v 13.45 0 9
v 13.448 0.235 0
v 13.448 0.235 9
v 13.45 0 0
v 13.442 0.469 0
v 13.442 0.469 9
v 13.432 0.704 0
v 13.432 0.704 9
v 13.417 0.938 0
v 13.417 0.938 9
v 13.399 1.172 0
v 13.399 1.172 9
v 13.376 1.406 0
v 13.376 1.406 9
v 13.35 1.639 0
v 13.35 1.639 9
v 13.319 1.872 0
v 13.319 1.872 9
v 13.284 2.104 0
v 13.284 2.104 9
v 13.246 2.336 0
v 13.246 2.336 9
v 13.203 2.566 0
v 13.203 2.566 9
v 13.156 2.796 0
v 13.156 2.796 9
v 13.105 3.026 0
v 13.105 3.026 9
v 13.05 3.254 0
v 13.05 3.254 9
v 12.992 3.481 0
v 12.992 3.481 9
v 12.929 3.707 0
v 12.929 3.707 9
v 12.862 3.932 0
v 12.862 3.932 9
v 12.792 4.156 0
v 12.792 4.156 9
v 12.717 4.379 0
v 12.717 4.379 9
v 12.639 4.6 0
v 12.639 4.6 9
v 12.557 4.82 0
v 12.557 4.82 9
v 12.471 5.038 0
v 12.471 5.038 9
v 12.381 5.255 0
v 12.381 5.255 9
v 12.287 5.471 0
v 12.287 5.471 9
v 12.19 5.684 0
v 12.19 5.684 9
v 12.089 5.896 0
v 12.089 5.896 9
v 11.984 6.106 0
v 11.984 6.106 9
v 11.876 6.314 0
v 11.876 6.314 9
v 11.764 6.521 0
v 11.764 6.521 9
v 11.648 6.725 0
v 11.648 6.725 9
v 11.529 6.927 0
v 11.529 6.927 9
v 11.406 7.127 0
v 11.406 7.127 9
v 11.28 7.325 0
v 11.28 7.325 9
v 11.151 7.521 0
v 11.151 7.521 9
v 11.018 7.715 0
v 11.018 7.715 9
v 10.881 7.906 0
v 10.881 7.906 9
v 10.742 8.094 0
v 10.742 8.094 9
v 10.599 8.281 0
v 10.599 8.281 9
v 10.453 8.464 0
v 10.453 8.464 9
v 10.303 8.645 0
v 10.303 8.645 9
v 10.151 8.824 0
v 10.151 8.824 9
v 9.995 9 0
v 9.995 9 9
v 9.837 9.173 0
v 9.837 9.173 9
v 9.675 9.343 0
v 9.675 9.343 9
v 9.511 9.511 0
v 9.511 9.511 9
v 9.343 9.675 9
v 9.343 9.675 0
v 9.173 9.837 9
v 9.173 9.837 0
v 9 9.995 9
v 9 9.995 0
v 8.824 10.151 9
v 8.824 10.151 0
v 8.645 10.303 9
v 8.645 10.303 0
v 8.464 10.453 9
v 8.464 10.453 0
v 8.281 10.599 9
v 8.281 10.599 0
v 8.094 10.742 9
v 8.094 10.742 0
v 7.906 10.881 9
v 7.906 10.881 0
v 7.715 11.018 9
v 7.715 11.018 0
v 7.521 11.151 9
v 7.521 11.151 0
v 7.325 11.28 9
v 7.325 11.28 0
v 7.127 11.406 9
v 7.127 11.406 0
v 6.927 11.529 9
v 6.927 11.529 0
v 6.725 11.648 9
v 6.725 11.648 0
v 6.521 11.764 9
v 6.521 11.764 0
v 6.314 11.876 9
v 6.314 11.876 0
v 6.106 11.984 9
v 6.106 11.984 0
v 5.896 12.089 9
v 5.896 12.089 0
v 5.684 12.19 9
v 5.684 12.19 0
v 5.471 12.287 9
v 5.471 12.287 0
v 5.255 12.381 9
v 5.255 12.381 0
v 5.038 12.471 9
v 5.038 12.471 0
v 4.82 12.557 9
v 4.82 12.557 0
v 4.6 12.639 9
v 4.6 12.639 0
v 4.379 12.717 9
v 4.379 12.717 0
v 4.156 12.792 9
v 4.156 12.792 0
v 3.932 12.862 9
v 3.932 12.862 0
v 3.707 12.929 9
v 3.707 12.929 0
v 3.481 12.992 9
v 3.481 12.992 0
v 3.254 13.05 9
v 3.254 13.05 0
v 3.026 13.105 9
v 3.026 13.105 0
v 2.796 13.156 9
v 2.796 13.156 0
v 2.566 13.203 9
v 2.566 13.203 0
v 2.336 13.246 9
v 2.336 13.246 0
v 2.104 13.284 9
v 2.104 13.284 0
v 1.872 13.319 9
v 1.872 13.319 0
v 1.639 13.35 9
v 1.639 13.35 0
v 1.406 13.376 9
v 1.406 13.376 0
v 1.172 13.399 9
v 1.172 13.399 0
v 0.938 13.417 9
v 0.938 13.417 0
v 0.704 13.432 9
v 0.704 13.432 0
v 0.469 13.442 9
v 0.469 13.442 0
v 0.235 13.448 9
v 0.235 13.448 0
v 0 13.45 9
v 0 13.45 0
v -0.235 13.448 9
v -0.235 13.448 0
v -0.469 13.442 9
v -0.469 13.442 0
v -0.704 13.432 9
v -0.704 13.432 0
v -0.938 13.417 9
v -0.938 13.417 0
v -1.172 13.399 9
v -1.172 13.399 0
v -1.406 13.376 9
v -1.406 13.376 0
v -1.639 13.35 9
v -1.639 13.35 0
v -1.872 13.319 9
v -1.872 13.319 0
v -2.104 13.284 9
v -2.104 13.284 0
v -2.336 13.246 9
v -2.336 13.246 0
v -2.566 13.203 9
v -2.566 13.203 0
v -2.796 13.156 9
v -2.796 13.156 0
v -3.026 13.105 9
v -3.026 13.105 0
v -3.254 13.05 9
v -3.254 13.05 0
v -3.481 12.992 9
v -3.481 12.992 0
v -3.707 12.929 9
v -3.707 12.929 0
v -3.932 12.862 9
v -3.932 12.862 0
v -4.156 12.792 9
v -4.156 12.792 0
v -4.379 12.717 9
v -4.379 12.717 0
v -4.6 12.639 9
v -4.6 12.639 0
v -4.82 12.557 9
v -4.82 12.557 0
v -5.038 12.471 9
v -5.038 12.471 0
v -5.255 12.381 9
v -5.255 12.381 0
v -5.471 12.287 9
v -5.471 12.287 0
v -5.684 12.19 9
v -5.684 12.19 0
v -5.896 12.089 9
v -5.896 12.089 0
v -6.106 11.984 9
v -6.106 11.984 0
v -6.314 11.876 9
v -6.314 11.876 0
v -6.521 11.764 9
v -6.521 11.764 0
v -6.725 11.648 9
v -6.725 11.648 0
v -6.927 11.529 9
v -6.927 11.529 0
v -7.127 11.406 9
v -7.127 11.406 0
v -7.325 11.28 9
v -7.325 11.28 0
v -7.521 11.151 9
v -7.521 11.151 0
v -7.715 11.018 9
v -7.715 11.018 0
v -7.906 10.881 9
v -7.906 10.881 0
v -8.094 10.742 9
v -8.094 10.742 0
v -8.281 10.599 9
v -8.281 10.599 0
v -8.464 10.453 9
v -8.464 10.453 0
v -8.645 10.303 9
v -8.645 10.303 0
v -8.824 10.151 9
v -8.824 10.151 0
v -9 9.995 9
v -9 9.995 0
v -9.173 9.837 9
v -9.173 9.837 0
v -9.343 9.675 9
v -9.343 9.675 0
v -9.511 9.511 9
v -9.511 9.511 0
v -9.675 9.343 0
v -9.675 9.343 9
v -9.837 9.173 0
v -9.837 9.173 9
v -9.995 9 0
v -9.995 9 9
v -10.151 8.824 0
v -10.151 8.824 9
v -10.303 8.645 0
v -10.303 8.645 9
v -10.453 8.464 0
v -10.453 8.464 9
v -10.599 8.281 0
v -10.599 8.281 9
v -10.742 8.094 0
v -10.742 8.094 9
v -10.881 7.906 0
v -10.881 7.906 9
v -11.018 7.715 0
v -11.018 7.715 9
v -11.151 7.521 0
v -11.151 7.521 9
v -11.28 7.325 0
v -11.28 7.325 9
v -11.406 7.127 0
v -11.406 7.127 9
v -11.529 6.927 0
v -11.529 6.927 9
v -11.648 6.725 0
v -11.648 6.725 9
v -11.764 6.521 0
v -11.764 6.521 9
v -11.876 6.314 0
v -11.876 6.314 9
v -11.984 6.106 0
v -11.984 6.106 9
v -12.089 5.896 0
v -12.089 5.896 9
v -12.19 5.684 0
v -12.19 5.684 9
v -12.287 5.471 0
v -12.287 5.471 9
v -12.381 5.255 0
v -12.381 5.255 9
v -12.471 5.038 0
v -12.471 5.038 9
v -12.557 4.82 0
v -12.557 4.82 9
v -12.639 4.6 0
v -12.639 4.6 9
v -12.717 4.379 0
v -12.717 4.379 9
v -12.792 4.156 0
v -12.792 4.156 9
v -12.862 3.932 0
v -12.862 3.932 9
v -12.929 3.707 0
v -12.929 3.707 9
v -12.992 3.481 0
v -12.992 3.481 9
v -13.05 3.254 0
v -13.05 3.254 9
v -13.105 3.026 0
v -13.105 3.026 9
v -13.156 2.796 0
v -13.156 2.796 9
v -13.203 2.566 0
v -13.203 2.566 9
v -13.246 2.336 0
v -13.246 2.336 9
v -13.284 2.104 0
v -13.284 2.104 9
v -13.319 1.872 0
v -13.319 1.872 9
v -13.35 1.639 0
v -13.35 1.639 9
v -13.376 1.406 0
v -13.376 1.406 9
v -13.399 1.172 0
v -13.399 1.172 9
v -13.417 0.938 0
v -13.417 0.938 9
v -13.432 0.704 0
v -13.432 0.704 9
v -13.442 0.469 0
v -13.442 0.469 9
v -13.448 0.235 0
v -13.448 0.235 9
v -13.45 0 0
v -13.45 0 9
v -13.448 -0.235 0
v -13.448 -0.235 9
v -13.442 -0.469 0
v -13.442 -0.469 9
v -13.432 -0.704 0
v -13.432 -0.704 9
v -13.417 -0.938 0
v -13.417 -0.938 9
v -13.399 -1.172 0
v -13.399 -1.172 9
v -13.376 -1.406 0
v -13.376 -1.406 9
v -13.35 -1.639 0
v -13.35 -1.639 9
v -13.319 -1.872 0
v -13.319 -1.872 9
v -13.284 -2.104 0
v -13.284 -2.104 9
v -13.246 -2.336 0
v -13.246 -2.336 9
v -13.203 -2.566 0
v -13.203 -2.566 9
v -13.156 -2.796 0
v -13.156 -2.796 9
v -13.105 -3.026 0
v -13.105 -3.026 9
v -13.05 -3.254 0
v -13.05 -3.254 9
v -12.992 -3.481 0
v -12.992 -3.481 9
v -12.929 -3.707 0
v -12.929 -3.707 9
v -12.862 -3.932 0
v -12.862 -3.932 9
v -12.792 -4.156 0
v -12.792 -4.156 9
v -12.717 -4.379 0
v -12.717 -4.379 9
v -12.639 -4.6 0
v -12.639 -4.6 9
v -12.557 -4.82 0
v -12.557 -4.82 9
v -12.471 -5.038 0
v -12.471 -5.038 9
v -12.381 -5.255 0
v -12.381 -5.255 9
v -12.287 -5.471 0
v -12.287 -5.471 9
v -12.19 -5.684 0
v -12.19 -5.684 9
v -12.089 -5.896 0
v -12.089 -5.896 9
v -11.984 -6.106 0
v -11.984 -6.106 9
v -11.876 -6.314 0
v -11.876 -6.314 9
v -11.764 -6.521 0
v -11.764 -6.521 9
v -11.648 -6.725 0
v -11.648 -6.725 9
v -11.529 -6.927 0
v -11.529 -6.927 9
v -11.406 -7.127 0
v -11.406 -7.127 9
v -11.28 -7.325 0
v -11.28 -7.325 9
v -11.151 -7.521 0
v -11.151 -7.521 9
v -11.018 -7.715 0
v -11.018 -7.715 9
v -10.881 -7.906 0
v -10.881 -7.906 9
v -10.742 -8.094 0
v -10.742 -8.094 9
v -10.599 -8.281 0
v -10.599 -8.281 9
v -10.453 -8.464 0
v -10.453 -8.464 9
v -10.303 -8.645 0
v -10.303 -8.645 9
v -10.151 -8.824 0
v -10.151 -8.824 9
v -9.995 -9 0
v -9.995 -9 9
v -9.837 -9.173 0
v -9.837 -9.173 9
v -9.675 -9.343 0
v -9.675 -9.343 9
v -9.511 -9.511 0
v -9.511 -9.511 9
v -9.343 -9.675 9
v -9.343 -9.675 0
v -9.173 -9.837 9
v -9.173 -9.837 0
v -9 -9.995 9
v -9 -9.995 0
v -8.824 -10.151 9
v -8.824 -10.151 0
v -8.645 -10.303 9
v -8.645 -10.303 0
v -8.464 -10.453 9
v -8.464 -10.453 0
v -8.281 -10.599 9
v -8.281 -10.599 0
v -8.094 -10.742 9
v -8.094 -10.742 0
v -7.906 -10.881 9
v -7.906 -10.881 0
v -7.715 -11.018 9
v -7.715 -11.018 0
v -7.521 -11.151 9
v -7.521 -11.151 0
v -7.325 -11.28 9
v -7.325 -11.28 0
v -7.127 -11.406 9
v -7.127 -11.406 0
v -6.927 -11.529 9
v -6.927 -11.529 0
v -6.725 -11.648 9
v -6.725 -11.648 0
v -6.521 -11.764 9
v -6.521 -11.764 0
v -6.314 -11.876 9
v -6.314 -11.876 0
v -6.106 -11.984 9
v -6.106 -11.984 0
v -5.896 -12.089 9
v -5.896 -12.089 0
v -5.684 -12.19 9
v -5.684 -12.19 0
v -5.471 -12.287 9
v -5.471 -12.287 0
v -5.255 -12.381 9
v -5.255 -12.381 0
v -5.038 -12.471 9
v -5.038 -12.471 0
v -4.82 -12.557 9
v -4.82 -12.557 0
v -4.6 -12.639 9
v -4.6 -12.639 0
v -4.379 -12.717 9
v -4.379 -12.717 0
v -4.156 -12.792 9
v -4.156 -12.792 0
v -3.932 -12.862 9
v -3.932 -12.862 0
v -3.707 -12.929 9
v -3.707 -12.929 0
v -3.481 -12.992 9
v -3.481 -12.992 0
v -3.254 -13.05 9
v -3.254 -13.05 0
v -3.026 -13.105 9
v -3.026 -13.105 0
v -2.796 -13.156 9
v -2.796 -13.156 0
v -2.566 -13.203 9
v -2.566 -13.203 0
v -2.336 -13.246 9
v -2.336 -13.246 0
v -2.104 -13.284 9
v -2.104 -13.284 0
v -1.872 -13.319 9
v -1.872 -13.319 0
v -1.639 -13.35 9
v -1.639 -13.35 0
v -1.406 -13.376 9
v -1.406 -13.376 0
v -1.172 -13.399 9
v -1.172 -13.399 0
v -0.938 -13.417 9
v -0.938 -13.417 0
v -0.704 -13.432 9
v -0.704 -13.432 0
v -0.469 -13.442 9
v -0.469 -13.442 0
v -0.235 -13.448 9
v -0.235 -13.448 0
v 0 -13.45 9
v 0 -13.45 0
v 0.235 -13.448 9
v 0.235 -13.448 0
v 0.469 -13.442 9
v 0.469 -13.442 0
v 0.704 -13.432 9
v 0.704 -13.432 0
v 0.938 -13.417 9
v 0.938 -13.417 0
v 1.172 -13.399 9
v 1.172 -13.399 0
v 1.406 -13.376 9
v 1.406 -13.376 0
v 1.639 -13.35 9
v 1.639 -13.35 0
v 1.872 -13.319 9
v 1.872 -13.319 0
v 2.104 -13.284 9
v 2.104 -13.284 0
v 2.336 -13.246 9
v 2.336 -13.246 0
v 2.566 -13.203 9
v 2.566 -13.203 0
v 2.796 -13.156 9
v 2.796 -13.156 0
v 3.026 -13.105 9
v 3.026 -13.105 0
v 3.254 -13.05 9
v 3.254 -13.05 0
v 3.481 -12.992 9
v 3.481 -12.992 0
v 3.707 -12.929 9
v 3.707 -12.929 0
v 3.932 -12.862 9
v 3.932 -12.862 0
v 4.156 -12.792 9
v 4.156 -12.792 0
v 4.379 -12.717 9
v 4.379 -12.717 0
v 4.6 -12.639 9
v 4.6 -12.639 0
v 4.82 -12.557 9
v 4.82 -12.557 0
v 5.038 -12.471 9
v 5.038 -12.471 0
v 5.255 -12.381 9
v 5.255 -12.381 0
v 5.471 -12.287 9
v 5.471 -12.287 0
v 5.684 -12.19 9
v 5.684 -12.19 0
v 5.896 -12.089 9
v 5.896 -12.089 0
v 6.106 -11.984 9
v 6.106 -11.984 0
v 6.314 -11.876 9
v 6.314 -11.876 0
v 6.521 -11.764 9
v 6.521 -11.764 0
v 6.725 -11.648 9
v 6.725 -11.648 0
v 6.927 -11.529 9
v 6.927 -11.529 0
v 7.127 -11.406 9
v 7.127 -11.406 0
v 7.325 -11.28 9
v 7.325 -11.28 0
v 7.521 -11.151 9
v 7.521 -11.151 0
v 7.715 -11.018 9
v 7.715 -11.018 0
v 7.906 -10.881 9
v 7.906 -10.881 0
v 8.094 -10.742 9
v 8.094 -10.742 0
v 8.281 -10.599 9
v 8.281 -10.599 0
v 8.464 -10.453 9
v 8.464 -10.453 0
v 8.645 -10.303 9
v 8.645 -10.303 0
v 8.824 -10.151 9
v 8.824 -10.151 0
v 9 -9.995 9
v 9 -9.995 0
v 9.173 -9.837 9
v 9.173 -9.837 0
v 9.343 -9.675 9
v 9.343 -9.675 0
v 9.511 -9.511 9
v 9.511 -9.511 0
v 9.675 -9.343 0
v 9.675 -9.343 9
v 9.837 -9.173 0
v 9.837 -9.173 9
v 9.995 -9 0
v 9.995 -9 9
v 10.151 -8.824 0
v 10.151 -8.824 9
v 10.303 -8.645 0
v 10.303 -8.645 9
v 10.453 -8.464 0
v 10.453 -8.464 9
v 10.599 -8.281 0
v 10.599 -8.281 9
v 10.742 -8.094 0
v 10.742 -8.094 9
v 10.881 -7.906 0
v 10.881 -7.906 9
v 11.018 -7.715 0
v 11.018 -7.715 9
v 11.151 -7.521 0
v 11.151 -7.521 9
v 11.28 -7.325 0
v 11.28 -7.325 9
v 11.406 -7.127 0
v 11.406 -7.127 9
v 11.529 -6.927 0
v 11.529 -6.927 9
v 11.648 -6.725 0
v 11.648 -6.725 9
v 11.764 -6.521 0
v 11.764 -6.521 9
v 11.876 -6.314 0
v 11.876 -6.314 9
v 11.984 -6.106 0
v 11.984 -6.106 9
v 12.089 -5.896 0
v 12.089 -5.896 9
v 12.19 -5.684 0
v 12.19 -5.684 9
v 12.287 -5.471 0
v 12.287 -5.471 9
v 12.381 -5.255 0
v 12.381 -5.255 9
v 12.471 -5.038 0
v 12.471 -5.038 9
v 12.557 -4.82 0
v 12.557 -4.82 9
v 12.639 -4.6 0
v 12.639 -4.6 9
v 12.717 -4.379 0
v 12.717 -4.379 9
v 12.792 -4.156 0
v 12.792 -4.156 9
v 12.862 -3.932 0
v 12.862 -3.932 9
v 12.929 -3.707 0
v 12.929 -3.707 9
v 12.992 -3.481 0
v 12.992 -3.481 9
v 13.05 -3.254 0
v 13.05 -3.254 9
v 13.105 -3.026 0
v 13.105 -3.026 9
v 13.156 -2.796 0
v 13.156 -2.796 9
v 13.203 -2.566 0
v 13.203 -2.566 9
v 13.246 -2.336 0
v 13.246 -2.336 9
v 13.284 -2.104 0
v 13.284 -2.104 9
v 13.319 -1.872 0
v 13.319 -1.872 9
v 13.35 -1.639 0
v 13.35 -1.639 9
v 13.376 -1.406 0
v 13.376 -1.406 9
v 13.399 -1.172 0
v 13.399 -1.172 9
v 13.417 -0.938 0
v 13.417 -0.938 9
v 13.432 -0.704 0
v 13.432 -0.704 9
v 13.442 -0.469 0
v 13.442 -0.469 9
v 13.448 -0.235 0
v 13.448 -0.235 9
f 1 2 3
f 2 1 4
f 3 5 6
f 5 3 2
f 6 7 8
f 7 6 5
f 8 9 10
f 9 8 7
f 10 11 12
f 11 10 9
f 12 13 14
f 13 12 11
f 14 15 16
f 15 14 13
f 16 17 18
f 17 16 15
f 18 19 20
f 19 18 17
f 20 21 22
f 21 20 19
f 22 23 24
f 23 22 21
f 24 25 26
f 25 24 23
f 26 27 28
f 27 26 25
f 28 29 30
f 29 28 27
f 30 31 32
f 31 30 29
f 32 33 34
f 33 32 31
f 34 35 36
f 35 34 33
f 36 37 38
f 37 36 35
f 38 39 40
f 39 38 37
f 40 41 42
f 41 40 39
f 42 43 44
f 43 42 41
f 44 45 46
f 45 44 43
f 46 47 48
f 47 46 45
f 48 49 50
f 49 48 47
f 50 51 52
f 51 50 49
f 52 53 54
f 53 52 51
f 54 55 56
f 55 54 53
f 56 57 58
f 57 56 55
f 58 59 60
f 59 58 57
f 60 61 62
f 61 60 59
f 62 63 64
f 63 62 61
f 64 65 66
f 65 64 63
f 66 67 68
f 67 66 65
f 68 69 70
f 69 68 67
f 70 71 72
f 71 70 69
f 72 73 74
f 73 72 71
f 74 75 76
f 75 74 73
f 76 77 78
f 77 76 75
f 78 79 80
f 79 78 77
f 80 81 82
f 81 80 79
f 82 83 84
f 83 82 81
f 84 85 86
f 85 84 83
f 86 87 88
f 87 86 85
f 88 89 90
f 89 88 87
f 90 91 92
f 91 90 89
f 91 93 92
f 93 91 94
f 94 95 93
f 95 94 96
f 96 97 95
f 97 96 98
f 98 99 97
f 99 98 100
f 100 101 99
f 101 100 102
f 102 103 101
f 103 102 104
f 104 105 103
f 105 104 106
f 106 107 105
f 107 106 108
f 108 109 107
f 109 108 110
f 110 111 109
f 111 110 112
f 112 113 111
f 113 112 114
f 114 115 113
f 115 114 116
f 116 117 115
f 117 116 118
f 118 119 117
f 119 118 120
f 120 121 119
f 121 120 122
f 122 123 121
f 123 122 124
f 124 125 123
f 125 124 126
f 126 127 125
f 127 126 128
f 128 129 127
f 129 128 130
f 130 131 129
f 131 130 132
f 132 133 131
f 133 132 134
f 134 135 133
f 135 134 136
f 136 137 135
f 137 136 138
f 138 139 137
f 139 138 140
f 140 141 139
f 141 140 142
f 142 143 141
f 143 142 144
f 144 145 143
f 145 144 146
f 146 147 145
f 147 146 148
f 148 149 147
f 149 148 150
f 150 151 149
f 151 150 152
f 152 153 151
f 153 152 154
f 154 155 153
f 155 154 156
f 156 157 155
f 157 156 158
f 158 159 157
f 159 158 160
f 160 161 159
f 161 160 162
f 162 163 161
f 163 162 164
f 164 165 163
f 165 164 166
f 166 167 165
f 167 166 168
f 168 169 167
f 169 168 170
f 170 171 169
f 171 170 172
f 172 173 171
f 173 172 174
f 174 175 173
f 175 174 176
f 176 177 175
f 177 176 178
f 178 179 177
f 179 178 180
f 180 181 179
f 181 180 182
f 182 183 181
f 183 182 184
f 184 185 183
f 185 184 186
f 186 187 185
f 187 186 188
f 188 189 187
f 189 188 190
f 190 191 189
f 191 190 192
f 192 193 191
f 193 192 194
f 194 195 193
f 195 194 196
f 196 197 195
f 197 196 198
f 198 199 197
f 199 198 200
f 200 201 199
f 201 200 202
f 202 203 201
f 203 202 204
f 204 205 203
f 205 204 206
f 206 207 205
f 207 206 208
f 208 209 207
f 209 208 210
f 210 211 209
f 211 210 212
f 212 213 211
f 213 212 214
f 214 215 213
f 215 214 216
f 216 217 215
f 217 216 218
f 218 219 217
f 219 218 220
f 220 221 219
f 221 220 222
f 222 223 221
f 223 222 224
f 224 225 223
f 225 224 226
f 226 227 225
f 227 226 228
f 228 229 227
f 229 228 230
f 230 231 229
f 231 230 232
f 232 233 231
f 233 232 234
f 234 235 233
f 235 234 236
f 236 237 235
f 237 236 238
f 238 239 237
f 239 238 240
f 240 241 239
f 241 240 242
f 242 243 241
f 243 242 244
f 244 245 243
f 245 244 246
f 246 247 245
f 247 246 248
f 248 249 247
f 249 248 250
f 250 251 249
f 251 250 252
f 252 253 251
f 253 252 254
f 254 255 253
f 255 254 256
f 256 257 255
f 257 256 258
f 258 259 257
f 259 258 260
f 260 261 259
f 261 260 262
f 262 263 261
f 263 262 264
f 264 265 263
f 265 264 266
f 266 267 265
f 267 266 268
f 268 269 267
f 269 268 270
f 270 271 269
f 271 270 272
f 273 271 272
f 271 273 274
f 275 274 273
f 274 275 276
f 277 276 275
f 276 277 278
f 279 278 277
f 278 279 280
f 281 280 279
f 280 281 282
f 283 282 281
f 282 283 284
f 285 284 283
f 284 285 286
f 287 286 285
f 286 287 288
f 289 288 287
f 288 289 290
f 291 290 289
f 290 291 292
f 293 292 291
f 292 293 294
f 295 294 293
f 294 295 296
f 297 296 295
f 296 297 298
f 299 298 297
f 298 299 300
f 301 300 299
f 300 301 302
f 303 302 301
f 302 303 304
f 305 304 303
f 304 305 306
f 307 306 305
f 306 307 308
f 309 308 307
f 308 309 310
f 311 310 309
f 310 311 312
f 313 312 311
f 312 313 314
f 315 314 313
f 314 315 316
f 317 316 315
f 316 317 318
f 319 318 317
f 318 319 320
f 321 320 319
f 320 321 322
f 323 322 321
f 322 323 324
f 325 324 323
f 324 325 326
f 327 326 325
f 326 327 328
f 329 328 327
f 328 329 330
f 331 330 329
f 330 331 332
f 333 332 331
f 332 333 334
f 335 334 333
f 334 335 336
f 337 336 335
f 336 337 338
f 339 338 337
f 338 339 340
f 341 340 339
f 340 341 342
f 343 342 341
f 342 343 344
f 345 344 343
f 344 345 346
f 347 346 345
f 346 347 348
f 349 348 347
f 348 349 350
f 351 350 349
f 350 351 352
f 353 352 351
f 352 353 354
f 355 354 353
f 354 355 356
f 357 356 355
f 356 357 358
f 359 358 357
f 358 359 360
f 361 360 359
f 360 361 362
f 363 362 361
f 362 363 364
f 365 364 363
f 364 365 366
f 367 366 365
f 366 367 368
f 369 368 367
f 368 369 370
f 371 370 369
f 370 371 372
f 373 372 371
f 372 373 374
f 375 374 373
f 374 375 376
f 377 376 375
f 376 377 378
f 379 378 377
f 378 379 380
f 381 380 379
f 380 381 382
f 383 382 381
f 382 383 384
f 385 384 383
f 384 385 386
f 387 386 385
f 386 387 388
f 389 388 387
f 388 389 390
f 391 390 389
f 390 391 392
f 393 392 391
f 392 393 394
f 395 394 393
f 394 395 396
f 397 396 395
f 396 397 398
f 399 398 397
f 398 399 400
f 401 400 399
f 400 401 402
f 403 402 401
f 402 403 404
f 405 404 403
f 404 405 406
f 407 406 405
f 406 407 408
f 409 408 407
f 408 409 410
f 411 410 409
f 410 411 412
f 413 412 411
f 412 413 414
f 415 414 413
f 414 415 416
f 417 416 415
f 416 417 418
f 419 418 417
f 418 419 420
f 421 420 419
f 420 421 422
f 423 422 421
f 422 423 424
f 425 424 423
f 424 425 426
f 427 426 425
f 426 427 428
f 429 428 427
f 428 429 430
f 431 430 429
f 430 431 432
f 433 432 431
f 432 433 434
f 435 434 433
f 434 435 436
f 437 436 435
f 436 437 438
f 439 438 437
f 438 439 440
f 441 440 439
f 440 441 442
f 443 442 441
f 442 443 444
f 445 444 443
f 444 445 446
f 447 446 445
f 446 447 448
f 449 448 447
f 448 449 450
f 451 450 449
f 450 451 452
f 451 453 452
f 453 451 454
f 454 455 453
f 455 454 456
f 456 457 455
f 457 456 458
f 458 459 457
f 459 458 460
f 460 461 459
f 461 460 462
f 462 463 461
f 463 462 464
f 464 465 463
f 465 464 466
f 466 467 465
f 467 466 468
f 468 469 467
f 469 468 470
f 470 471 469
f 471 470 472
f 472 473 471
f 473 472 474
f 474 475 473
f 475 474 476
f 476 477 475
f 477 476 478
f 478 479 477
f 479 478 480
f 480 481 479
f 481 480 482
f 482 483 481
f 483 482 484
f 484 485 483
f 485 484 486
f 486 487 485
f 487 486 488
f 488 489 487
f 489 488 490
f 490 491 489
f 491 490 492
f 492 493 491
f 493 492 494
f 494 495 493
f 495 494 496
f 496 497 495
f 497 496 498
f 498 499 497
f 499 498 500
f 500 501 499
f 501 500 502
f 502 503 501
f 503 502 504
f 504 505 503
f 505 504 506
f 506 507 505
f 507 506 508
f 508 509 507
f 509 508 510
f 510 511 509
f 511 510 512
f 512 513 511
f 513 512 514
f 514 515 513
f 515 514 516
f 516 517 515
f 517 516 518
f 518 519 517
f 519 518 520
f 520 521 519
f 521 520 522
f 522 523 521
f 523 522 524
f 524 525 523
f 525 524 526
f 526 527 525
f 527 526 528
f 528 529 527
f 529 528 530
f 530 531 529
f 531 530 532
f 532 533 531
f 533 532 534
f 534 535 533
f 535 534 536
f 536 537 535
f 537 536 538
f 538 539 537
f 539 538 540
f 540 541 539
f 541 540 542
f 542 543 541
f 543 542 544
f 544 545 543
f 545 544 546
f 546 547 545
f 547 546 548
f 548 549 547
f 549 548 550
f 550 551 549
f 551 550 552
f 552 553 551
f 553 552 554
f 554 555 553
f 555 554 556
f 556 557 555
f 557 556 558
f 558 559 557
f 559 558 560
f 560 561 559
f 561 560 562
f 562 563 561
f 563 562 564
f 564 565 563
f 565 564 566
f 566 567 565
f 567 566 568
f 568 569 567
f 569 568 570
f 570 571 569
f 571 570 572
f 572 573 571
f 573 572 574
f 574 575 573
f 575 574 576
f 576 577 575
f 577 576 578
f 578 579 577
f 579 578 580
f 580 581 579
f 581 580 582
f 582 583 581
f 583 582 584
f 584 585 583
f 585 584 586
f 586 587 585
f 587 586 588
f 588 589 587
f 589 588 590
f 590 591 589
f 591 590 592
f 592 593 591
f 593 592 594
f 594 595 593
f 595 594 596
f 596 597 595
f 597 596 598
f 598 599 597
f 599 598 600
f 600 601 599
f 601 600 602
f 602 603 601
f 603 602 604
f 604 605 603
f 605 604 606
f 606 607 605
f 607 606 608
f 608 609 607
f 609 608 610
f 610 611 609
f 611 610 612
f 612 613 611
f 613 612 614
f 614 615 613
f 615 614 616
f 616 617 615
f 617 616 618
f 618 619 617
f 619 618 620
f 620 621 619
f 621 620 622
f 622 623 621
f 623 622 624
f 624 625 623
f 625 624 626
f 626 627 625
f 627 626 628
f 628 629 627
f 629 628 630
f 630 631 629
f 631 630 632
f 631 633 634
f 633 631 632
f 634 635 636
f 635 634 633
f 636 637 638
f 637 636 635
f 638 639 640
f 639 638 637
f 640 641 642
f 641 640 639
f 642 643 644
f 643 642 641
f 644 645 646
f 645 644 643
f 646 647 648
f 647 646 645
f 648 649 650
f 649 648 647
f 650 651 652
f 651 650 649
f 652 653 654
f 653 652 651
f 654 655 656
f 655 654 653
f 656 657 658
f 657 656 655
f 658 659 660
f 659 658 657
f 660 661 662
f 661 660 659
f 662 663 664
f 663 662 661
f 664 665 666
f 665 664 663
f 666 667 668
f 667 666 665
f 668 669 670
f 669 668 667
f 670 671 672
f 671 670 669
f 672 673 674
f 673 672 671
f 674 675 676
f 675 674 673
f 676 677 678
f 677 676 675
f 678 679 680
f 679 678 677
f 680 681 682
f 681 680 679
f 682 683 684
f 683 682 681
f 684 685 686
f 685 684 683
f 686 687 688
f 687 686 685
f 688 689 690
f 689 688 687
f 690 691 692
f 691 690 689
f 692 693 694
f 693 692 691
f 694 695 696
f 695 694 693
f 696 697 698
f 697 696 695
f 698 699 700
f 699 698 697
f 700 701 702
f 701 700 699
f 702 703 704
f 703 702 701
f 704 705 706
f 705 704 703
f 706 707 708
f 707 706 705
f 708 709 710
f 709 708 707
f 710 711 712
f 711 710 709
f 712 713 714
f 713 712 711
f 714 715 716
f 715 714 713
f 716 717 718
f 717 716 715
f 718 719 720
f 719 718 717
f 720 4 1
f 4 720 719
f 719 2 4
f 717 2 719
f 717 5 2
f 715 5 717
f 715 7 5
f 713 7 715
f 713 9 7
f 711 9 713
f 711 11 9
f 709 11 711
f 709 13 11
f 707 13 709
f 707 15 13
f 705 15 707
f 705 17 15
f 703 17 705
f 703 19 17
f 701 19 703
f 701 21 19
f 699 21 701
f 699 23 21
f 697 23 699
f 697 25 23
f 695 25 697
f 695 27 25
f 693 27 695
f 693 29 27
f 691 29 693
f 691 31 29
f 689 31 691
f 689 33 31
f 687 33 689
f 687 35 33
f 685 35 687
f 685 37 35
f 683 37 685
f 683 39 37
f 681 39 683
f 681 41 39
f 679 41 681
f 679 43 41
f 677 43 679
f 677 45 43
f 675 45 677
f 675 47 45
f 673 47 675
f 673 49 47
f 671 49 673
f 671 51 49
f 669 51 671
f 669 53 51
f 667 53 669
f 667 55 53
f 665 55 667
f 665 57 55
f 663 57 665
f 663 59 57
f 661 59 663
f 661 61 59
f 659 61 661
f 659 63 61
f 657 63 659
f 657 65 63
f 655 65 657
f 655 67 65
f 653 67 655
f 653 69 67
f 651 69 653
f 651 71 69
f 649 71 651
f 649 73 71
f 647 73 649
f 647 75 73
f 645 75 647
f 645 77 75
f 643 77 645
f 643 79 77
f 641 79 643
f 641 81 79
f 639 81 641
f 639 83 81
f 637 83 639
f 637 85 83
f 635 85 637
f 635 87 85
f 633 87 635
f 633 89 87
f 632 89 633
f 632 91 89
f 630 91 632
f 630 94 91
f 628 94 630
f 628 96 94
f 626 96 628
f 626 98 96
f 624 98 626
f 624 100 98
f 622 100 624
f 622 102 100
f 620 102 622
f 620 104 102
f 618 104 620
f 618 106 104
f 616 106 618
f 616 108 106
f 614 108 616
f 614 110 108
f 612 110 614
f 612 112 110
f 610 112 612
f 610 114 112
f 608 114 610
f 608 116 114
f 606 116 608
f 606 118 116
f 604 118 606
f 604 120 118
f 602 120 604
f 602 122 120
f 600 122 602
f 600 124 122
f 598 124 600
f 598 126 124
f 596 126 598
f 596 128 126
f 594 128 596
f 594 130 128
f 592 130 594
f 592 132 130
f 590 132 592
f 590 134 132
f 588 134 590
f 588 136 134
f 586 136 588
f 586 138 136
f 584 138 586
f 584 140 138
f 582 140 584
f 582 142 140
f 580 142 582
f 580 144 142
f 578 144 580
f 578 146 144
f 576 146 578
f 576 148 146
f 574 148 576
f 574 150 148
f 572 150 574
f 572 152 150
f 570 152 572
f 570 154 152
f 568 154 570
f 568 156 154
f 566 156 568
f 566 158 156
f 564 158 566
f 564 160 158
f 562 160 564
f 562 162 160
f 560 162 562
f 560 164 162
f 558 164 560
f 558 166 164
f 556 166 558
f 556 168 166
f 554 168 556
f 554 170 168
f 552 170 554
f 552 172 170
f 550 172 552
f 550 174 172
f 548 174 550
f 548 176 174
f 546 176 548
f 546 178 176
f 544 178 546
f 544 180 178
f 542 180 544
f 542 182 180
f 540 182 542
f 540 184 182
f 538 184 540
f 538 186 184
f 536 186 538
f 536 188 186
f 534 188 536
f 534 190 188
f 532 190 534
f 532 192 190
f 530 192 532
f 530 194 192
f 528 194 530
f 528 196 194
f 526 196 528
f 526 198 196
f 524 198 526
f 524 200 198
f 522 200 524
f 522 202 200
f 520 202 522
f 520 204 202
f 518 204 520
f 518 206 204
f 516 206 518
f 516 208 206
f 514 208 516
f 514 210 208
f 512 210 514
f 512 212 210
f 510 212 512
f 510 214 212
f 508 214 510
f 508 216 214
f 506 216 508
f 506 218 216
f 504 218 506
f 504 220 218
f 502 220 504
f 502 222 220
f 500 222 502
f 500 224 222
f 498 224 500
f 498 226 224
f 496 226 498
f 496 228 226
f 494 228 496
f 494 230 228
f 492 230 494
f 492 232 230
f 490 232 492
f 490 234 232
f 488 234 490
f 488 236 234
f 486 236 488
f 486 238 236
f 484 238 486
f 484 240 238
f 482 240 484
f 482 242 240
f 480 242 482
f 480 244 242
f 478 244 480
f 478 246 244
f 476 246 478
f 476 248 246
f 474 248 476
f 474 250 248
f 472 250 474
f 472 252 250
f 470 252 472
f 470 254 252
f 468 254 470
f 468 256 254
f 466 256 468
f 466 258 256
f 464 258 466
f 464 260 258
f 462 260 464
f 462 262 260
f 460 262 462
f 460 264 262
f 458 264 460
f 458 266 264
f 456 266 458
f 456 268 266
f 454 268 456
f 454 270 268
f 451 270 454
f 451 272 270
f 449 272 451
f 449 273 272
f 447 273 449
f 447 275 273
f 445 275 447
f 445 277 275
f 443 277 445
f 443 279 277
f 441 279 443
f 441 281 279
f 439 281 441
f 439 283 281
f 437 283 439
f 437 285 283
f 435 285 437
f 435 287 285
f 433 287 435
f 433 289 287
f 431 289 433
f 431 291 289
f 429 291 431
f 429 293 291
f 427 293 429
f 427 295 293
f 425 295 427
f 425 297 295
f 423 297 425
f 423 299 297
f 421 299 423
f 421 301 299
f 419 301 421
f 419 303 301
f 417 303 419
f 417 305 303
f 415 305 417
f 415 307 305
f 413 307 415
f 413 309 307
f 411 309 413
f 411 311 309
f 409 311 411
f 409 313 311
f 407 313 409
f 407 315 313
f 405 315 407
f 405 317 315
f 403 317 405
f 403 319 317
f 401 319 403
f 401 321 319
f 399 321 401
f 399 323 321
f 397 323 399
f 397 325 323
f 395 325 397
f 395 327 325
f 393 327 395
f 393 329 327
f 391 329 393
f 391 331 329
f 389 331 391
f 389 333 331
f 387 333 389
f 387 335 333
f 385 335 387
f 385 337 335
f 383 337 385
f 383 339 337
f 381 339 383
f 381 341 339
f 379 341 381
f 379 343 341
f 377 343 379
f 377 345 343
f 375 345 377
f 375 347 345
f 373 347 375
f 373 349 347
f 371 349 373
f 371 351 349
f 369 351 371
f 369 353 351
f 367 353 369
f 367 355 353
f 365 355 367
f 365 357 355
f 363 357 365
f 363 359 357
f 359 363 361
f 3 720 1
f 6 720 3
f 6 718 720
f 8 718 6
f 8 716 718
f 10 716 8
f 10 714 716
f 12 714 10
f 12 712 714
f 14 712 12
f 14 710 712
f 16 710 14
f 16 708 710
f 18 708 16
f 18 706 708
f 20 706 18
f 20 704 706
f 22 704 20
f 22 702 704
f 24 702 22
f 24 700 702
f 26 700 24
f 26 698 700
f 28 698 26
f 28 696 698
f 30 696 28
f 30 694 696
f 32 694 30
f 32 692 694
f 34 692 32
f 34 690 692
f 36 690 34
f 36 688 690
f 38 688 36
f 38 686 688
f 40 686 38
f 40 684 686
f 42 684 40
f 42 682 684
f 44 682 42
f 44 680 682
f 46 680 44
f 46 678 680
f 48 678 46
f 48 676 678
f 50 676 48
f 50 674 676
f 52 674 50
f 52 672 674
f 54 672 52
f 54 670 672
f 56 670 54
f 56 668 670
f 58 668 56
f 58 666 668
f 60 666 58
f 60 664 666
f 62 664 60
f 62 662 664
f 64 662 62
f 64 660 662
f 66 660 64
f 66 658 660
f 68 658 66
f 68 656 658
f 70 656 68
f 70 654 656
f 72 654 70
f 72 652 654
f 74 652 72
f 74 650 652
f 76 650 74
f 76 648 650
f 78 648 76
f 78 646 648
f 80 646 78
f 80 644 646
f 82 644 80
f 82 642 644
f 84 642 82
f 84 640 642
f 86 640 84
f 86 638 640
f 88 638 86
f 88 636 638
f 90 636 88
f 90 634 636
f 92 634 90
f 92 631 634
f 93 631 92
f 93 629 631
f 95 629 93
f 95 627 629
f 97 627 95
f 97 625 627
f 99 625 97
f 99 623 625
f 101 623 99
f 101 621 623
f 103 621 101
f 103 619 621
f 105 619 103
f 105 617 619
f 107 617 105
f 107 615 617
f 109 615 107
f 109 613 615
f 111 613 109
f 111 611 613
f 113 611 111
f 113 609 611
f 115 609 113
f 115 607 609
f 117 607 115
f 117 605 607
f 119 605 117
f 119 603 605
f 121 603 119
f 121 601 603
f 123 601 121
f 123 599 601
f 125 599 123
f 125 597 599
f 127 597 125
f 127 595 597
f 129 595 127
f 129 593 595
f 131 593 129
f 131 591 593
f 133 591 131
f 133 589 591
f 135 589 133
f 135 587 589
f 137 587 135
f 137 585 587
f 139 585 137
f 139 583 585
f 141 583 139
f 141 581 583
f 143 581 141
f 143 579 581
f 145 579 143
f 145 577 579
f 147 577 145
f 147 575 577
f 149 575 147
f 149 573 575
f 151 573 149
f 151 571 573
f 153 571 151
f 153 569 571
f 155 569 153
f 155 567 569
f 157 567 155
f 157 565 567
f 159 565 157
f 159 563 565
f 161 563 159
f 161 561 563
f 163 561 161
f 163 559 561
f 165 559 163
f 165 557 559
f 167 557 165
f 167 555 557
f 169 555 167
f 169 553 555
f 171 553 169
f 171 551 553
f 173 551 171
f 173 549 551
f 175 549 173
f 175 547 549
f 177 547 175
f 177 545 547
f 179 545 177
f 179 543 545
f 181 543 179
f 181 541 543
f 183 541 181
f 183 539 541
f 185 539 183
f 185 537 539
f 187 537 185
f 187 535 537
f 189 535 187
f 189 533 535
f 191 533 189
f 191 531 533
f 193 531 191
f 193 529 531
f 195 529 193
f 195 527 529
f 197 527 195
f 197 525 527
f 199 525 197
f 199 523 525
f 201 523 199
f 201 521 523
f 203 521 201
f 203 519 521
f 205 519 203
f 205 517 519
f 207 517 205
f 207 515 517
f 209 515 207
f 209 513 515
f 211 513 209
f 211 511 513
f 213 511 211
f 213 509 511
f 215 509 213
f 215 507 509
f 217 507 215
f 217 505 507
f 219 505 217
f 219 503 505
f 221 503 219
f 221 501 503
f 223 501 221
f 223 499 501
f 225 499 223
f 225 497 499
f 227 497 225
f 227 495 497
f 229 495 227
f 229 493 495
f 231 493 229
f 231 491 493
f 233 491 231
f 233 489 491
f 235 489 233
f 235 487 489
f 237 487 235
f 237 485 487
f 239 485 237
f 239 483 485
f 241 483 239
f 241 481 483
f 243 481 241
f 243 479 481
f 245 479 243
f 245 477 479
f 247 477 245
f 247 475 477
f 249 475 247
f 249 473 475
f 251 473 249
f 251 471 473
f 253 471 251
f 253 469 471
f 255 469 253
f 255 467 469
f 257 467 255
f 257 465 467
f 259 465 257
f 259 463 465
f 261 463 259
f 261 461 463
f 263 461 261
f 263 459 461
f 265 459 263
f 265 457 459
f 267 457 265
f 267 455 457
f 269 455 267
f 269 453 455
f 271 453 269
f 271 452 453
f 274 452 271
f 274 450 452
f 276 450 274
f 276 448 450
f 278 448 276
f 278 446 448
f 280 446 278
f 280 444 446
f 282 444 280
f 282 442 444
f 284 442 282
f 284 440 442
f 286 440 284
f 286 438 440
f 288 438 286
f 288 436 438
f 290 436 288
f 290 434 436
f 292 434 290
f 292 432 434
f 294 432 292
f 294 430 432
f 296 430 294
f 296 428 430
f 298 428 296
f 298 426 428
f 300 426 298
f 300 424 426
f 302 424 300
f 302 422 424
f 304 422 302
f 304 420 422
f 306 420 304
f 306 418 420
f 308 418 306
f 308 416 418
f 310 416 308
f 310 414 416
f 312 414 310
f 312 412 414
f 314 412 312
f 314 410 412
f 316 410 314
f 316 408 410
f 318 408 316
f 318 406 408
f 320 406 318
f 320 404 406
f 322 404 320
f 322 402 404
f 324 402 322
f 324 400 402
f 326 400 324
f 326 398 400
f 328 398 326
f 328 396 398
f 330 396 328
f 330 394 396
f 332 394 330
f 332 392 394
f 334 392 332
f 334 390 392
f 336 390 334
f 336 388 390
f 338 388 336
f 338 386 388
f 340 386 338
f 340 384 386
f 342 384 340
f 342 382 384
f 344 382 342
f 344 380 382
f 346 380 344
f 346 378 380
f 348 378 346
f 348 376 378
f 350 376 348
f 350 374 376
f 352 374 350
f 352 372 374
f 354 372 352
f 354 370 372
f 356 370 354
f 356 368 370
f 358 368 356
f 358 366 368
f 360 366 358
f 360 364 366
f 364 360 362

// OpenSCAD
$fn = 360;

t1_height = 9;
t1_diameter = 26.9;

cylinder(t1_height, t1_diameter/2, t1_diameter/2);
